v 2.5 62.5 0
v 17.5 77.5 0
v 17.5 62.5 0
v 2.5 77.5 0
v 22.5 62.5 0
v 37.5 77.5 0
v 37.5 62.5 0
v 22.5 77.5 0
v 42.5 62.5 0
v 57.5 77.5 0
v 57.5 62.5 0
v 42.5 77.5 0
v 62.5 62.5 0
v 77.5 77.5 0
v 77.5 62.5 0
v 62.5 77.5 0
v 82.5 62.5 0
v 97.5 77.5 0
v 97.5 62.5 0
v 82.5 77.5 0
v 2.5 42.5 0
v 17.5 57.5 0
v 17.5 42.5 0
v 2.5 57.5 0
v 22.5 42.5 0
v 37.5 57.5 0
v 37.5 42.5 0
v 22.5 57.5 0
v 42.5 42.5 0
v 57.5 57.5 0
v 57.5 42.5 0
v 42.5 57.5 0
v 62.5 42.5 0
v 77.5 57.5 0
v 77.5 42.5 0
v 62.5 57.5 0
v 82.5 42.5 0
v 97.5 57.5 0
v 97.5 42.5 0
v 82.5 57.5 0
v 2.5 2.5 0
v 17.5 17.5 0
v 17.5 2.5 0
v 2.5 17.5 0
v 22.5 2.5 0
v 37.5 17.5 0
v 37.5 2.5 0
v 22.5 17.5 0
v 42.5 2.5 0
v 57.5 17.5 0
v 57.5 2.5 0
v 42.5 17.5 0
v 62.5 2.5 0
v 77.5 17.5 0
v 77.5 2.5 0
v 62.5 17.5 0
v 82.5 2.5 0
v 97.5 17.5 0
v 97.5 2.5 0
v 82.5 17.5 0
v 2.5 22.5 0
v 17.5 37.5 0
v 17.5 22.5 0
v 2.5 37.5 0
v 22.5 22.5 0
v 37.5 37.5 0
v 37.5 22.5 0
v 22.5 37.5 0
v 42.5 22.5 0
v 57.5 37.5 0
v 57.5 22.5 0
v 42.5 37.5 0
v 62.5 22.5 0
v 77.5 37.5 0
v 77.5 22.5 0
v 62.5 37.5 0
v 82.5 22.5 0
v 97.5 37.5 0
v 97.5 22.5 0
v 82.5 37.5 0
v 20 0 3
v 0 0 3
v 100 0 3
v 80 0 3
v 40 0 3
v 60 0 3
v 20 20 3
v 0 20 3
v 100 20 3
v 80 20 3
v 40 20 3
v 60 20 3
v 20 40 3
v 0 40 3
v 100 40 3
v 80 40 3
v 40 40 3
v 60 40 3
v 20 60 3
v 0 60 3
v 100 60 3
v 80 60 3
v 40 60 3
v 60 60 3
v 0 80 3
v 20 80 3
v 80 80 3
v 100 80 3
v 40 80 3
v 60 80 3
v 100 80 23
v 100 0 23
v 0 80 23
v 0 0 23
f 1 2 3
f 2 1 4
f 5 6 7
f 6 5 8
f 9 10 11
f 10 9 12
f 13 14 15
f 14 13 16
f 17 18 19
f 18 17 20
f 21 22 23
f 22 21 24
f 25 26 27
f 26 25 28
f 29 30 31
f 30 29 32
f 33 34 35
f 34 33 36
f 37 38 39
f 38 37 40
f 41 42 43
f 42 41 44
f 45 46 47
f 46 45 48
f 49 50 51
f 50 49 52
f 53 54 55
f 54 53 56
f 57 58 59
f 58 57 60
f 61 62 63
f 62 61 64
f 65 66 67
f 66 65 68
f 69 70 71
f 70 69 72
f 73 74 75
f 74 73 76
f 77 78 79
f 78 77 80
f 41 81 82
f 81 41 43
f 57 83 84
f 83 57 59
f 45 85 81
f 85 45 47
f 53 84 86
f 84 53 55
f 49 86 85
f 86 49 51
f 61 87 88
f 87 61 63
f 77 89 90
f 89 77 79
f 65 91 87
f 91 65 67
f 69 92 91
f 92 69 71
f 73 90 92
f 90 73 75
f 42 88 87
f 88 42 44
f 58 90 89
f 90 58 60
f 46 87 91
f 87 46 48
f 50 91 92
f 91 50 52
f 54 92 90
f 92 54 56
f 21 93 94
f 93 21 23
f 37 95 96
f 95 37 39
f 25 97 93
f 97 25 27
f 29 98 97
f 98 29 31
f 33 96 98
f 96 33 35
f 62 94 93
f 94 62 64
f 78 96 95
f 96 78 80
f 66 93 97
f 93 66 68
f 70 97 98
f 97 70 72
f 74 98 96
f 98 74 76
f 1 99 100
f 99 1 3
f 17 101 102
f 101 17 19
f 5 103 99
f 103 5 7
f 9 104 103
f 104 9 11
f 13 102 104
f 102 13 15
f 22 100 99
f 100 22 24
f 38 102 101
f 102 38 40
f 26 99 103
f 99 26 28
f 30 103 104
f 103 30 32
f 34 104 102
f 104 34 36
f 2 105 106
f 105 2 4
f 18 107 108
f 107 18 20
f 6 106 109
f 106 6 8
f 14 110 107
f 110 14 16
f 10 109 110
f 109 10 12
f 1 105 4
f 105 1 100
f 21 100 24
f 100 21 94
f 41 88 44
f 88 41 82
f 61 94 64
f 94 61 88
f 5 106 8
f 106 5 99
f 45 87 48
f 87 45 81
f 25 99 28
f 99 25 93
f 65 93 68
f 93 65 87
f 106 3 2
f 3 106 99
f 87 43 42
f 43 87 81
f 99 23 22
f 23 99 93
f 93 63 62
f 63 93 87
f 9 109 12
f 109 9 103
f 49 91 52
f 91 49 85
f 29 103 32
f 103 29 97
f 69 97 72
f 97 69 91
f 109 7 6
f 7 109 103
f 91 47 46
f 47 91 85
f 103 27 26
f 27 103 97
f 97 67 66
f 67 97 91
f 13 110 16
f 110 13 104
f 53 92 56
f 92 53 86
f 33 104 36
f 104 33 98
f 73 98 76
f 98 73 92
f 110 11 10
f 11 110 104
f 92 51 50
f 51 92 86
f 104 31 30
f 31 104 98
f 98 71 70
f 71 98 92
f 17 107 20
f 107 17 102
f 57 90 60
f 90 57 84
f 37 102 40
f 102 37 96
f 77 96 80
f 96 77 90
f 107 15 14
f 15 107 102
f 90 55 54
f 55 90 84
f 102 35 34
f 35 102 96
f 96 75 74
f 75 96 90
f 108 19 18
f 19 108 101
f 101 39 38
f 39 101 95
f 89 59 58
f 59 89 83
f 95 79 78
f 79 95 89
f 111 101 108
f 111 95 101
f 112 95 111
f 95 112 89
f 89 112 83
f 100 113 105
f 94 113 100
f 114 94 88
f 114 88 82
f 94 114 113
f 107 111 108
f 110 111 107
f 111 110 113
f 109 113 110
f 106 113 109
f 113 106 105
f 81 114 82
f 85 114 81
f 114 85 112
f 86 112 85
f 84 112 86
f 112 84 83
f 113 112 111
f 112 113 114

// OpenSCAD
// file: common.scad
WALL_WIDTH = 3;
BOX_HEIGHT = 75;
BOX_CLEARENCE = 13;
TILE_HEIGHT = 1.75;

FONT_SIZE = 8;

function wall_width() = WALL_WIDTH;
function box_height() = BOX_HEIGHT;
function box_clearence() = BOX_CLEARENCE;
function tile_height() = TILE_HEIGHT;
function font_size() = FONT_SIZE;
// file: ../common.scad
BASE_TILE_SIZE=20;
BASE_WIDTH=5;
PEAK_HEIGHT=3;

DEFAULT_FONT = "Ubuntu:style=Medium";
DEFAULT_FONT_DEPTH = 1;
DEFAULT_FONT_SIZE = 10;

render_helper_h = 1;

function y_up() = [90, 0, 0];
function x_up() = [90, 0, 90];

function min_floor_offset(wall_width) = wall_width + PEAK_HEIGHT;
function tri_mid() = BASE_WIDTH / 2;
function triangle() = [[0, 0],[BASE_WIDTH, 0],[tri_mid(), PEAK_HEIGHT]];
function base_tile_size() = BASE_TILE_SIZE;
function peak_height() = PEAK_HEIGHT;
function font_depth() = DEFAULT_FONT_DEPTH;
function font_size() = DEFAULT_FONT_SIZE;

function isX(direction) = (direction == "x");

module grid(width, depth, direction) {
    length = isX(direction) ? width : depth;
    slot_length = isX(direction) ? depth : width;
    translate_z = isX(direction) ? -slot_length : 0;
    rot = isX(direction) ? y_up() : x_up();

    // This is the total additional slots past the initial one
    total_slots = floor(length / BASE_TILE_SIZE);

    for (i = [0 : total_slots]) {
        offset = -tri_mid() + BASE_TILE_SIZE * i;
        rotate(rot)
        translate([offset, 0, translate_z])
        linear_extrude(height = slot_length)
        polygon(points=triangle());
    }
}

module grid_slots(width, depth) {
    grid(width, depth, "y");
    grid(width, depth, "x");
}

module base_block(width, depth, height, include_grid = true) {
    difference() {
        cube([width, depth, height]);

        if (include_grid) {
            grid_slots(width, depth);
        }
    }
}

module prism(l, w, h) {
    polyhedron(
        points=[ [0, 0, 0], [0, w, h], [l, w, h], [l, 0, 0], [0, w, 0], [l, w, 0] ],
        faces=[ [0, 1, 2, 3],
            [2, 1, 4, 5],
            [0, 3, 5, 4],
            [0, 4, 1],
            [3, 2, 5]
        ]
    );
}

module pyramid(w) {
    polyhedron(
        points=[ [w,w,0],[w,-w,0],[-w,-w,0],[-w,w,0], [0,0,w]  ],
        faces=[ [0,1,4],[1,2,4],[2,3,4],[3,0,4], [1,0,3],[2,1,3] ]
    );
}

module embossed_text(
    t,
    h = DEFAULT_FONT_DEPTH,
    font = DEFAULT_FONT,
    size = DEFAULT_FONT_SIZE,
    valign = "center",
    halign = "center",
    render_helper = true
) {
    extrude_h = (render_helper) ? h + render_helper_h : h;
    
    translate([0, 0, -h])
    linear_extrude(extrude_h)
    text(
        t,
        font = font,
        size = size,
        valign = valign,
        halign = halign
    );
}
// main file
use <../common.scad>
use <common.scad>

FIGURE_BASE_DIAMETER = 28.5;
FIGURE_HEIGHT = 46;
FIGURE_BASE_HEIGHT = 7;

FIGURE_ROW = 2;
FIGURE_COL = 3;

render_helper = 1;

figure_space = FIGURE_BASE_DIAMETER + wall_width();

min_depth = FIGURE_ROW * figure_space + wall_width();
min_width = FIGURE_COL *  figure_space + wall_width();

total_width = ceil(min_width / base_tile_size()) * base_tile_size();
total_depth = ceil(min_depth / base_tile_size()) * base_tile_size();
total_height = box_height() - box_clearence();

module all_figures() {
    translate([
        -render_helper,
        -render_helper,
        total_height - FIGURE_HEIGHT + FIGURE_BASE_HEIGHT
    ])
    cube([
        total_width + render_helper * 2,
        total_depth + render_helper * 2,
        FIGURE_HEIGHT
    ]);
}

module figure_holder() {
    difference() {
        base_block(total_width, total_depth, total_height);
        all_figures();
    }
}

figure_holder();
